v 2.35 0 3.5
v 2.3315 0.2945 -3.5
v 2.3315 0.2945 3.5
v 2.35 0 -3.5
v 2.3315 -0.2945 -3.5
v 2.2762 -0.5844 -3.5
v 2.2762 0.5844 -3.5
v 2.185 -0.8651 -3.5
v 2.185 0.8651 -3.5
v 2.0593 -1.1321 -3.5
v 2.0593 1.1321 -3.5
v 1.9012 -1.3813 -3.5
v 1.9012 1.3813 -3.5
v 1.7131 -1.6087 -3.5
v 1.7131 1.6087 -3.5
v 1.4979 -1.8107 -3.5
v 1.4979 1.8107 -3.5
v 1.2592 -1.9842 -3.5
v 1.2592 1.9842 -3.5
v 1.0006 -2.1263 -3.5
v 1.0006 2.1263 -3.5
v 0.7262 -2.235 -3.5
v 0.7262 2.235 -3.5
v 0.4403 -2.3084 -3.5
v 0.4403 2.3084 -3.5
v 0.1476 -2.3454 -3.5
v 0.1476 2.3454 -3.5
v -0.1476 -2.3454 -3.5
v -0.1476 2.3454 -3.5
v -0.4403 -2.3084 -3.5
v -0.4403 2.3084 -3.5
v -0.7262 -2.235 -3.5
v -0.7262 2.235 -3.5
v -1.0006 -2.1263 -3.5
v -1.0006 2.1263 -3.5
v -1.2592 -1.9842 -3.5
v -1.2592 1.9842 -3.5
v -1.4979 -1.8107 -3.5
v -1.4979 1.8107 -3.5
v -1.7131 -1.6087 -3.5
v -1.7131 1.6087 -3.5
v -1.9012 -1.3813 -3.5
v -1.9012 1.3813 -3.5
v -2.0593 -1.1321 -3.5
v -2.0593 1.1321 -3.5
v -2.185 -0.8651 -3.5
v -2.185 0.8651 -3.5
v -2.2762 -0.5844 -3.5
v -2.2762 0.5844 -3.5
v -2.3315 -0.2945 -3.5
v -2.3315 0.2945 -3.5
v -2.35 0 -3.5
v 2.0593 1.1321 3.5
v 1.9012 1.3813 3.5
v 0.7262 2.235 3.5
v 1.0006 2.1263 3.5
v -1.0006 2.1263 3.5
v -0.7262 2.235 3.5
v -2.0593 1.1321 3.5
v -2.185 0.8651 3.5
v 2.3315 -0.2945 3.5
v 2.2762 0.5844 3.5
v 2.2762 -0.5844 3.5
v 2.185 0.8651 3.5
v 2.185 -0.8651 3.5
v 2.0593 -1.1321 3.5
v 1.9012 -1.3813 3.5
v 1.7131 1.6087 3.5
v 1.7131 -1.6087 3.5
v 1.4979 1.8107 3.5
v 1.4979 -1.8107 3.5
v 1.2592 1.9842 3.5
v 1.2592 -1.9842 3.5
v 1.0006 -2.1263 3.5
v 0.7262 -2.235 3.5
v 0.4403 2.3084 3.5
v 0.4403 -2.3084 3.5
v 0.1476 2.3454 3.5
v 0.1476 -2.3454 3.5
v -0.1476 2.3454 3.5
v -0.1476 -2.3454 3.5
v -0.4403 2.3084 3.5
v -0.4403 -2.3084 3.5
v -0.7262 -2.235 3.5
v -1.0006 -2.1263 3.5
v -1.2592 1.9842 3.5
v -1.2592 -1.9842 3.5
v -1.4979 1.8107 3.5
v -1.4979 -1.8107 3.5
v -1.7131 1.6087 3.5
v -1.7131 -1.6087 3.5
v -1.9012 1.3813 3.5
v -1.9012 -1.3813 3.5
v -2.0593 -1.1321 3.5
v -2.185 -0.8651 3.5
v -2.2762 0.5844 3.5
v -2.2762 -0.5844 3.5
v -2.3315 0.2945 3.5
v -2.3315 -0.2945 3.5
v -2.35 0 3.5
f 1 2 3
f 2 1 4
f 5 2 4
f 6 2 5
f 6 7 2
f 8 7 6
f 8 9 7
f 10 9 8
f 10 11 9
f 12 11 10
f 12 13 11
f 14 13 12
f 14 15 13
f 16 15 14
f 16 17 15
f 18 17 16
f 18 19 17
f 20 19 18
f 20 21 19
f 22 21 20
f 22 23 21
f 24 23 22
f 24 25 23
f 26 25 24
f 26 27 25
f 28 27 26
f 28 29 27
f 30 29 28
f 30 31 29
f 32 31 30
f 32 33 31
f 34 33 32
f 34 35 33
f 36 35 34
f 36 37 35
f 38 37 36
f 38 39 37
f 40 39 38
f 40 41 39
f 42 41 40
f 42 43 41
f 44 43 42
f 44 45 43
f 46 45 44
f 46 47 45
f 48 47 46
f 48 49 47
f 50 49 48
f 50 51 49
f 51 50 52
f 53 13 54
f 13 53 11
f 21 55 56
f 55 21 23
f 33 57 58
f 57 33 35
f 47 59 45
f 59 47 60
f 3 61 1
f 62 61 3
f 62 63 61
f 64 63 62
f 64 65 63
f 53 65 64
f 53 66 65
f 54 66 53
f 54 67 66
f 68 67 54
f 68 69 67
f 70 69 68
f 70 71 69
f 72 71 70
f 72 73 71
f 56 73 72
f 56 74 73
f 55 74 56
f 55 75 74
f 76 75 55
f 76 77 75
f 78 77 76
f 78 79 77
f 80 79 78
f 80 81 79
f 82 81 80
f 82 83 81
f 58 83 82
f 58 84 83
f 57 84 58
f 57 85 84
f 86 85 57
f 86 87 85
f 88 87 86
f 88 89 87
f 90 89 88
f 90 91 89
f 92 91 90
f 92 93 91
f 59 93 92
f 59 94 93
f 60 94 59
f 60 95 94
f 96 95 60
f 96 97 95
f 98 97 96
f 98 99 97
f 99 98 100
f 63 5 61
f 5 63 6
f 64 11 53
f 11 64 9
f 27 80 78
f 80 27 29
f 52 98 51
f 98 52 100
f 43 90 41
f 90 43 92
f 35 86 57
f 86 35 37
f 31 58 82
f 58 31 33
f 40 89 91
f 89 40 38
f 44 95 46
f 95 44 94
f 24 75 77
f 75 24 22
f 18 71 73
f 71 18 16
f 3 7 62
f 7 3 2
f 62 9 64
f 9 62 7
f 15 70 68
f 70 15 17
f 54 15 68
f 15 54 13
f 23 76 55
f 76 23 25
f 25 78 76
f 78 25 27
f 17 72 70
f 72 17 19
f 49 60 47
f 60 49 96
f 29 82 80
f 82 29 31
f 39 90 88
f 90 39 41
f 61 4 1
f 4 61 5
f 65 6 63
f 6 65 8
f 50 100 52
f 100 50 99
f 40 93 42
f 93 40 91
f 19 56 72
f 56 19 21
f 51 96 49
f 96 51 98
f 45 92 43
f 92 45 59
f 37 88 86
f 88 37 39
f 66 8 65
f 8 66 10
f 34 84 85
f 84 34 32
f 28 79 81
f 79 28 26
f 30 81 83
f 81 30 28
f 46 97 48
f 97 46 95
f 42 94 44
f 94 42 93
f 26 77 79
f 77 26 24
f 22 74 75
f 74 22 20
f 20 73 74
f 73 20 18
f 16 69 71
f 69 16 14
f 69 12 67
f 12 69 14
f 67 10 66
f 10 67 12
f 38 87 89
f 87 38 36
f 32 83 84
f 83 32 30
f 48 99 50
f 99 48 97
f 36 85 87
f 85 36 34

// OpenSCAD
$fn = 50;


difference() {
	union() {
		translate(v = [0, 0, -3.5000000000]) {
			cylinder(h = 7, r = 2.3500000000);
		}
	}
	union() {
		translate(v = [0, 0, -100.0000000000]) {
			cylinder(h = 200, r = 0);
		}
	}
}
